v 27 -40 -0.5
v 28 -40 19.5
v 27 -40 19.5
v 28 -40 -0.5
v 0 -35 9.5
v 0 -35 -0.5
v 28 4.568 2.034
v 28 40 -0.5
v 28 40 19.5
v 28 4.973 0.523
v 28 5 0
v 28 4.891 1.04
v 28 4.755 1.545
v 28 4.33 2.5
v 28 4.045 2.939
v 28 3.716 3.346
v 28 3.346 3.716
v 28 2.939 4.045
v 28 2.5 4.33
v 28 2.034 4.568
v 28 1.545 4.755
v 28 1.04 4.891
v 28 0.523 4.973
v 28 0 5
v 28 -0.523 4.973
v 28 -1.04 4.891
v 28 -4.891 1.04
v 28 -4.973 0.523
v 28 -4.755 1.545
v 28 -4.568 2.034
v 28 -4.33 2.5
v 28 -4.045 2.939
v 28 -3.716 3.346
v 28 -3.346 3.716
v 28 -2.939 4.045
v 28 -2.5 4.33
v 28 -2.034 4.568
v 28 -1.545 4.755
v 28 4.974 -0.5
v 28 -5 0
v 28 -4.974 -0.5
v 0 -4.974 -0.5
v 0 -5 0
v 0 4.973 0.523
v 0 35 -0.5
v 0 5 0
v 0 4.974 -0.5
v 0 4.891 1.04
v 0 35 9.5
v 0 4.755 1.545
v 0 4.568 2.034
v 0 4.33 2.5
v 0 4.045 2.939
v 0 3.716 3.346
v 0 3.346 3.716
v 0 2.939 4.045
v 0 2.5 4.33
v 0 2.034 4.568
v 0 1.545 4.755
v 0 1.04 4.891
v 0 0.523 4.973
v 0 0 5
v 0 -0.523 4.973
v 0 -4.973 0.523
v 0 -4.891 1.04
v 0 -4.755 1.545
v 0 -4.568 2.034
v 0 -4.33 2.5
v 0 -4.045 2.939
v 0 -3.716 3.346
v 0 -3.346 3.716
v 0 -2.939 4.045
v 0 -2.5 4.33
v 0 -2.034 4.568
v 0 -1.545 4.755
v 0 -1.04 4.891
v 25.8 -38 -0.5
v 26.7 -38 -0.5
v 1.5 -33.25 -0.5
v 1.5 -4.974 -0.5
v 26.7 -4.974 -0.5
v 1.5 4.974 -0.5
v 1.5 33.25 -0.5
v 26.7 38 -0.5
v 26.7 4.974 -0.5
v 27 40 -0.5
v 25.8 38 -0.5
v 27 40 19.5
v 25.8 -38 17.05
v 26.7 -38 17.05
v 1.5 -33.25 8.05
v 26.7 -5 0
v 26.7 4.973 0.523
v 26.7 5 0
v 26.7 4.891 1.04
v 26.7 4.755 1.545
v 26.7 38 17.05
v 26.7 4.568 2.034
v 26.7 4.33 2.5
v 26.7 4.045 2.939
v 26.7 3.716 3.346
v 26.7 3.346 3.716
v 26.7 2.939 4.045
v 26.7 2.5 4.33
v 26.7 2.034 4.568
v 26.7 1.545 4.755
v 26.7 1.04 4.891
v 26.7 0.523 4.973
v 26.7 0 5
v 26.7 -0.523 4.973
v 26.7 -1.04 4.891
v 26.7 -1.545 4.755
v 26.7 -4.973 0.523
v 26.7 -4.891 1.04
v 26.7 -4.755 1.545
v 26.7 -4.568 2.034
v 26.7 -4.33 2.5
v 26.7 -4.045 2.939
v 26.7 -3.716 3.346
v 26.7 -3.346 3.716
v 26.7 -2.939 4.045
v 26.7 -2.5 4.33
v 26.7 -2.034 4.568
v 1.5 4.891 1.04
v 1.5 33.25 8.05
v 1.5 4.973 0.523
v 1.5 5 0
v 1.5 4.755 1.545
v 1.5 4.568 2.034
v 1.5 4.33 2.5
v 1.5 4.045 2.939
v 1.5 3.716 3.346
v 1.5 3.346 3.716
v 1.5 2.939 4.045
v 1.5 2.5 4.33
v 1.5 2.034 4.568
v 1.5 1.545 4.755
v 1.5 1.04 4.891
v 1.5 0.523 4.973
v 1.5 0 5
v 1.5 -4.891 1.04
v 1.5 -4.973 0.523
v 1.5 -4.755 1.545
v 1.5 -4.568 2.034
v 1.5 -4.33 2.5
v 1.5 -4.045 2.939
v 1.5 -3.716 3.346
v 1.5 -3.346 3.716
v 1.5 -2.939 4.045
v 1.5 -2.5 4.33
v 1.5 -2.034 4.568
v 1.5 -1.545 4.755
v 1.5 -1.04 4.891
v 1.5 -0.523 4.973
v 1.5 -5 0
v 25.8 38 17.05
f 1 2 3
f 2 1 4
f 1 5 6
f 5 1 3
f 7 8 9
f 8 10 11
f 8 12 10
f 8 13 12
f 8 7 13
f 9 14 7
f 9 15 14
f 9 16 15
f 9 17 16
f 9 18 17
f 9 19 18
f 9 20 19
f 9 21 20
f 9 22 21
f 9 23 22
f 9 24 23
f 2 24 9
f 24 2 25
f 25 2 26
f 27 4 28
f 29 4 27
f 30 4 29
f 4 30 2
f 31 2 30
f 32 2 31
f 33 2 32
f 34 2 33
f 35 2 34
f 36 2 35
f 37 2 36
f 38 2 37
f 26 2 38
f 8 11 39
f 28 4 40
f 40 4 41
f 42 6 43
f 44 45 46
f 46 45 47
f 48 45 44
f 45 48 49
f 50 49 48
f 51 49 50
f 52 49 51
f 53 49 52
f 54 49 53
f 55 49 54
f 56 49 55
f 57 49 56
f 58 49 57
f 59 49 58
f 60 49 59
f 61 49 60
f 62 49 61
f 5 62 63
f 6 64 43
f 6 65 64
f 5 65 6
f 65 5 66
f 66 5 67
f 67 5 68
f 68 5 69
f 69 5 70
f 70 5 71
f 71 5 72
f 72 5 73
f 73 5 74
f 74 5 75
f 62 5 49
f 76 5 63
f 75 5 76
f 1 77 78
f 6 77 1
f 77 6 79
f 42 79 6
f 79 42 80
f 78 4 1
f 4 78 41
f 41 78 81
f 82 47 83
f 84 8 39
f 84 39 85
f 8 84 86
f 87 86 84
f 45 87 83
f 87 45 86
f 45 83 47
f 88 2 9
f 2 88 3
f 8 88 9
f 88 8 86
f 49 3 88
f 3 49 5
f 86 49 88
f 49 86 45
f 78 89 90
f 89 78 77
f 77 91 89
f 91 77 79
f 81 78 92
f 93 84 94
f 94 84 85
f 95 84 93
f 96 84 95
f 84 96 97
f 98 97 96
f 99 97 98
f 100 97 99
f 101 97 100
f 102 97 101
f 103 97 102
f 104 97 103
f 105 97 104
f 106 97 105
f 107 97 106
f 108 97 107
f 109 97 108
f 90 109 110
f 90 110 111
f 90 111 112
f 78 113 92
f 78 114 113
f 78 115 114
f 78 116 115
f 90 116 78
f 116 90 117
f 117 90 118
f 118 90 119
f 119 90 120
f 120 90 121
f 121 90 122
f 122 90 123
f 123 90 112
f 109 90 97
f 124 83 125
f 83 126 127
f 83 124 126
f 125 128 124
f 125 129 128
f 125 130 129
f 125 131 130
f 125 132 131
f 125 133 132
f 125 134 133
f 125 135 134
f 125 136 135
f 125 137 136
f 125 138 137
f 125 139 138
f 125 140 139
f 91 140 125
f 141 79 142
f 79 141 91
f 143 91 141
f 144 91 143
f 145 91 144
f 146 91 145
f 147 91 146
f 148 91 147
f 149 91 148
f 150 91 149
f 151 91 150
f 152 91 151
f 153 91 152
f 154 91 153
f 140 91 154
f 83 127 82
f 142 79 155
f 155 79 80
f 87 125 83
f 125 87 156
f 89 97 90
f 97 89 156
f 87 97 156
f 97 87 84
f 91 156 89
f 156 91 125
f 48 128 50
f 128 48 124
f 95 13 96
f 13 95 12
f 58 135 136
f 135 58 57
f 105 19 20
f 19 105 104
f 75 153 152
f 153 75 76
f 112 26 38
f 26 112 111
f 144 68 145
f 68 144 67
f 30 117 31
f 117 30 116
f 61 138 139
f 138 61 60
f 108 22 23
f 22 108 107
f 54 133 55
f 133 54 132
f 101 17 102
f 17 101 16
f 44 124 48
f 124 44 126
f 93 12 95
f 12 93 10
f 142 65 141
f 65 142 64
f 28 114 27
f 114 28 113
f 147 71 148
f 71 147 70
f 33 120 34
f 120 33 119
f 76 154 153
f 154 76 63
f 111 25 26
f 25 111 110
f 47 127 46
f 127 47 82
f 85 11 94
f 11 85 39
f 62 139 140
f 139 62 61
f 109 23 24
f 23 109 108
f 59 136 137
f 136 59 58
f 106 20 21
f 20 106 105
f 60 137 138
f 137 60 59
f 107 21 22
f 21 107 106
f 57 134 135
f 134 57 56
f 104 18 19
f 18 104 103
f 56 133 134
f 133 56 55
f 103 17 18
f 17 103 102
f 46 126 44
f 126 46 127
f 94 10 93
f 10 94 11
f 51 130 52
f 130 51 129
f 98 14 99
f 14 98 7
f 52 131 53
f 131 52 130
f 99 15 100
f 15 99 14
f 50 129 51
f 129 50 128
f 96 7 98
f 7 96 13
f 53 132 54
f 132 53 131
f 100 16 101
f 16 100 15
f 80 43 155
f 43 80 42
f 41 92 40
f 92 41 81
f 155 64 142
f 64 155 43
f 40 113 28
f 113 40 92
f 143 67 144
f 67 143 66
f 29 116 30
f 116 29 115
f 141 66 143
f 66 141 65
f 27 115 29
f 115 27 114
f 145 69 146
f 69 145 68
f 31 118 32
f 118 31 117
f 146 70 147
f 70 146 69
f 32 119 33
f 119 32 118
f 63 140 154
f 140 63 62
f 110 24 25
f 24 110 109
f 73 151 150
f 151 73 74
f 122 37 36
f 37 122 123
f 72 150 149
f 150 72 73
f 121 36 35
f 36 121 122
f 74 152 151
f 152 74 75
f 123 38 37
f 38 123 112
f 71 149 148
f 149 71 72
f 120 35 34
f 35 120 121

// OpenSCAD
$fn=60;

module part() { 
    hull() {
        translate([0.5,0,9/2]) cube([1,70,10], center=true);
        translate([27.5,0,19/2]) cube([1,80,20], center=true);
    }
}

difference() {
    part();
    translate([1.5,0,-0.5]) scale([0.90,0.95,0.90]) part();
    rotate([0,90,0]) cylinder(d=10, h=50);
}
